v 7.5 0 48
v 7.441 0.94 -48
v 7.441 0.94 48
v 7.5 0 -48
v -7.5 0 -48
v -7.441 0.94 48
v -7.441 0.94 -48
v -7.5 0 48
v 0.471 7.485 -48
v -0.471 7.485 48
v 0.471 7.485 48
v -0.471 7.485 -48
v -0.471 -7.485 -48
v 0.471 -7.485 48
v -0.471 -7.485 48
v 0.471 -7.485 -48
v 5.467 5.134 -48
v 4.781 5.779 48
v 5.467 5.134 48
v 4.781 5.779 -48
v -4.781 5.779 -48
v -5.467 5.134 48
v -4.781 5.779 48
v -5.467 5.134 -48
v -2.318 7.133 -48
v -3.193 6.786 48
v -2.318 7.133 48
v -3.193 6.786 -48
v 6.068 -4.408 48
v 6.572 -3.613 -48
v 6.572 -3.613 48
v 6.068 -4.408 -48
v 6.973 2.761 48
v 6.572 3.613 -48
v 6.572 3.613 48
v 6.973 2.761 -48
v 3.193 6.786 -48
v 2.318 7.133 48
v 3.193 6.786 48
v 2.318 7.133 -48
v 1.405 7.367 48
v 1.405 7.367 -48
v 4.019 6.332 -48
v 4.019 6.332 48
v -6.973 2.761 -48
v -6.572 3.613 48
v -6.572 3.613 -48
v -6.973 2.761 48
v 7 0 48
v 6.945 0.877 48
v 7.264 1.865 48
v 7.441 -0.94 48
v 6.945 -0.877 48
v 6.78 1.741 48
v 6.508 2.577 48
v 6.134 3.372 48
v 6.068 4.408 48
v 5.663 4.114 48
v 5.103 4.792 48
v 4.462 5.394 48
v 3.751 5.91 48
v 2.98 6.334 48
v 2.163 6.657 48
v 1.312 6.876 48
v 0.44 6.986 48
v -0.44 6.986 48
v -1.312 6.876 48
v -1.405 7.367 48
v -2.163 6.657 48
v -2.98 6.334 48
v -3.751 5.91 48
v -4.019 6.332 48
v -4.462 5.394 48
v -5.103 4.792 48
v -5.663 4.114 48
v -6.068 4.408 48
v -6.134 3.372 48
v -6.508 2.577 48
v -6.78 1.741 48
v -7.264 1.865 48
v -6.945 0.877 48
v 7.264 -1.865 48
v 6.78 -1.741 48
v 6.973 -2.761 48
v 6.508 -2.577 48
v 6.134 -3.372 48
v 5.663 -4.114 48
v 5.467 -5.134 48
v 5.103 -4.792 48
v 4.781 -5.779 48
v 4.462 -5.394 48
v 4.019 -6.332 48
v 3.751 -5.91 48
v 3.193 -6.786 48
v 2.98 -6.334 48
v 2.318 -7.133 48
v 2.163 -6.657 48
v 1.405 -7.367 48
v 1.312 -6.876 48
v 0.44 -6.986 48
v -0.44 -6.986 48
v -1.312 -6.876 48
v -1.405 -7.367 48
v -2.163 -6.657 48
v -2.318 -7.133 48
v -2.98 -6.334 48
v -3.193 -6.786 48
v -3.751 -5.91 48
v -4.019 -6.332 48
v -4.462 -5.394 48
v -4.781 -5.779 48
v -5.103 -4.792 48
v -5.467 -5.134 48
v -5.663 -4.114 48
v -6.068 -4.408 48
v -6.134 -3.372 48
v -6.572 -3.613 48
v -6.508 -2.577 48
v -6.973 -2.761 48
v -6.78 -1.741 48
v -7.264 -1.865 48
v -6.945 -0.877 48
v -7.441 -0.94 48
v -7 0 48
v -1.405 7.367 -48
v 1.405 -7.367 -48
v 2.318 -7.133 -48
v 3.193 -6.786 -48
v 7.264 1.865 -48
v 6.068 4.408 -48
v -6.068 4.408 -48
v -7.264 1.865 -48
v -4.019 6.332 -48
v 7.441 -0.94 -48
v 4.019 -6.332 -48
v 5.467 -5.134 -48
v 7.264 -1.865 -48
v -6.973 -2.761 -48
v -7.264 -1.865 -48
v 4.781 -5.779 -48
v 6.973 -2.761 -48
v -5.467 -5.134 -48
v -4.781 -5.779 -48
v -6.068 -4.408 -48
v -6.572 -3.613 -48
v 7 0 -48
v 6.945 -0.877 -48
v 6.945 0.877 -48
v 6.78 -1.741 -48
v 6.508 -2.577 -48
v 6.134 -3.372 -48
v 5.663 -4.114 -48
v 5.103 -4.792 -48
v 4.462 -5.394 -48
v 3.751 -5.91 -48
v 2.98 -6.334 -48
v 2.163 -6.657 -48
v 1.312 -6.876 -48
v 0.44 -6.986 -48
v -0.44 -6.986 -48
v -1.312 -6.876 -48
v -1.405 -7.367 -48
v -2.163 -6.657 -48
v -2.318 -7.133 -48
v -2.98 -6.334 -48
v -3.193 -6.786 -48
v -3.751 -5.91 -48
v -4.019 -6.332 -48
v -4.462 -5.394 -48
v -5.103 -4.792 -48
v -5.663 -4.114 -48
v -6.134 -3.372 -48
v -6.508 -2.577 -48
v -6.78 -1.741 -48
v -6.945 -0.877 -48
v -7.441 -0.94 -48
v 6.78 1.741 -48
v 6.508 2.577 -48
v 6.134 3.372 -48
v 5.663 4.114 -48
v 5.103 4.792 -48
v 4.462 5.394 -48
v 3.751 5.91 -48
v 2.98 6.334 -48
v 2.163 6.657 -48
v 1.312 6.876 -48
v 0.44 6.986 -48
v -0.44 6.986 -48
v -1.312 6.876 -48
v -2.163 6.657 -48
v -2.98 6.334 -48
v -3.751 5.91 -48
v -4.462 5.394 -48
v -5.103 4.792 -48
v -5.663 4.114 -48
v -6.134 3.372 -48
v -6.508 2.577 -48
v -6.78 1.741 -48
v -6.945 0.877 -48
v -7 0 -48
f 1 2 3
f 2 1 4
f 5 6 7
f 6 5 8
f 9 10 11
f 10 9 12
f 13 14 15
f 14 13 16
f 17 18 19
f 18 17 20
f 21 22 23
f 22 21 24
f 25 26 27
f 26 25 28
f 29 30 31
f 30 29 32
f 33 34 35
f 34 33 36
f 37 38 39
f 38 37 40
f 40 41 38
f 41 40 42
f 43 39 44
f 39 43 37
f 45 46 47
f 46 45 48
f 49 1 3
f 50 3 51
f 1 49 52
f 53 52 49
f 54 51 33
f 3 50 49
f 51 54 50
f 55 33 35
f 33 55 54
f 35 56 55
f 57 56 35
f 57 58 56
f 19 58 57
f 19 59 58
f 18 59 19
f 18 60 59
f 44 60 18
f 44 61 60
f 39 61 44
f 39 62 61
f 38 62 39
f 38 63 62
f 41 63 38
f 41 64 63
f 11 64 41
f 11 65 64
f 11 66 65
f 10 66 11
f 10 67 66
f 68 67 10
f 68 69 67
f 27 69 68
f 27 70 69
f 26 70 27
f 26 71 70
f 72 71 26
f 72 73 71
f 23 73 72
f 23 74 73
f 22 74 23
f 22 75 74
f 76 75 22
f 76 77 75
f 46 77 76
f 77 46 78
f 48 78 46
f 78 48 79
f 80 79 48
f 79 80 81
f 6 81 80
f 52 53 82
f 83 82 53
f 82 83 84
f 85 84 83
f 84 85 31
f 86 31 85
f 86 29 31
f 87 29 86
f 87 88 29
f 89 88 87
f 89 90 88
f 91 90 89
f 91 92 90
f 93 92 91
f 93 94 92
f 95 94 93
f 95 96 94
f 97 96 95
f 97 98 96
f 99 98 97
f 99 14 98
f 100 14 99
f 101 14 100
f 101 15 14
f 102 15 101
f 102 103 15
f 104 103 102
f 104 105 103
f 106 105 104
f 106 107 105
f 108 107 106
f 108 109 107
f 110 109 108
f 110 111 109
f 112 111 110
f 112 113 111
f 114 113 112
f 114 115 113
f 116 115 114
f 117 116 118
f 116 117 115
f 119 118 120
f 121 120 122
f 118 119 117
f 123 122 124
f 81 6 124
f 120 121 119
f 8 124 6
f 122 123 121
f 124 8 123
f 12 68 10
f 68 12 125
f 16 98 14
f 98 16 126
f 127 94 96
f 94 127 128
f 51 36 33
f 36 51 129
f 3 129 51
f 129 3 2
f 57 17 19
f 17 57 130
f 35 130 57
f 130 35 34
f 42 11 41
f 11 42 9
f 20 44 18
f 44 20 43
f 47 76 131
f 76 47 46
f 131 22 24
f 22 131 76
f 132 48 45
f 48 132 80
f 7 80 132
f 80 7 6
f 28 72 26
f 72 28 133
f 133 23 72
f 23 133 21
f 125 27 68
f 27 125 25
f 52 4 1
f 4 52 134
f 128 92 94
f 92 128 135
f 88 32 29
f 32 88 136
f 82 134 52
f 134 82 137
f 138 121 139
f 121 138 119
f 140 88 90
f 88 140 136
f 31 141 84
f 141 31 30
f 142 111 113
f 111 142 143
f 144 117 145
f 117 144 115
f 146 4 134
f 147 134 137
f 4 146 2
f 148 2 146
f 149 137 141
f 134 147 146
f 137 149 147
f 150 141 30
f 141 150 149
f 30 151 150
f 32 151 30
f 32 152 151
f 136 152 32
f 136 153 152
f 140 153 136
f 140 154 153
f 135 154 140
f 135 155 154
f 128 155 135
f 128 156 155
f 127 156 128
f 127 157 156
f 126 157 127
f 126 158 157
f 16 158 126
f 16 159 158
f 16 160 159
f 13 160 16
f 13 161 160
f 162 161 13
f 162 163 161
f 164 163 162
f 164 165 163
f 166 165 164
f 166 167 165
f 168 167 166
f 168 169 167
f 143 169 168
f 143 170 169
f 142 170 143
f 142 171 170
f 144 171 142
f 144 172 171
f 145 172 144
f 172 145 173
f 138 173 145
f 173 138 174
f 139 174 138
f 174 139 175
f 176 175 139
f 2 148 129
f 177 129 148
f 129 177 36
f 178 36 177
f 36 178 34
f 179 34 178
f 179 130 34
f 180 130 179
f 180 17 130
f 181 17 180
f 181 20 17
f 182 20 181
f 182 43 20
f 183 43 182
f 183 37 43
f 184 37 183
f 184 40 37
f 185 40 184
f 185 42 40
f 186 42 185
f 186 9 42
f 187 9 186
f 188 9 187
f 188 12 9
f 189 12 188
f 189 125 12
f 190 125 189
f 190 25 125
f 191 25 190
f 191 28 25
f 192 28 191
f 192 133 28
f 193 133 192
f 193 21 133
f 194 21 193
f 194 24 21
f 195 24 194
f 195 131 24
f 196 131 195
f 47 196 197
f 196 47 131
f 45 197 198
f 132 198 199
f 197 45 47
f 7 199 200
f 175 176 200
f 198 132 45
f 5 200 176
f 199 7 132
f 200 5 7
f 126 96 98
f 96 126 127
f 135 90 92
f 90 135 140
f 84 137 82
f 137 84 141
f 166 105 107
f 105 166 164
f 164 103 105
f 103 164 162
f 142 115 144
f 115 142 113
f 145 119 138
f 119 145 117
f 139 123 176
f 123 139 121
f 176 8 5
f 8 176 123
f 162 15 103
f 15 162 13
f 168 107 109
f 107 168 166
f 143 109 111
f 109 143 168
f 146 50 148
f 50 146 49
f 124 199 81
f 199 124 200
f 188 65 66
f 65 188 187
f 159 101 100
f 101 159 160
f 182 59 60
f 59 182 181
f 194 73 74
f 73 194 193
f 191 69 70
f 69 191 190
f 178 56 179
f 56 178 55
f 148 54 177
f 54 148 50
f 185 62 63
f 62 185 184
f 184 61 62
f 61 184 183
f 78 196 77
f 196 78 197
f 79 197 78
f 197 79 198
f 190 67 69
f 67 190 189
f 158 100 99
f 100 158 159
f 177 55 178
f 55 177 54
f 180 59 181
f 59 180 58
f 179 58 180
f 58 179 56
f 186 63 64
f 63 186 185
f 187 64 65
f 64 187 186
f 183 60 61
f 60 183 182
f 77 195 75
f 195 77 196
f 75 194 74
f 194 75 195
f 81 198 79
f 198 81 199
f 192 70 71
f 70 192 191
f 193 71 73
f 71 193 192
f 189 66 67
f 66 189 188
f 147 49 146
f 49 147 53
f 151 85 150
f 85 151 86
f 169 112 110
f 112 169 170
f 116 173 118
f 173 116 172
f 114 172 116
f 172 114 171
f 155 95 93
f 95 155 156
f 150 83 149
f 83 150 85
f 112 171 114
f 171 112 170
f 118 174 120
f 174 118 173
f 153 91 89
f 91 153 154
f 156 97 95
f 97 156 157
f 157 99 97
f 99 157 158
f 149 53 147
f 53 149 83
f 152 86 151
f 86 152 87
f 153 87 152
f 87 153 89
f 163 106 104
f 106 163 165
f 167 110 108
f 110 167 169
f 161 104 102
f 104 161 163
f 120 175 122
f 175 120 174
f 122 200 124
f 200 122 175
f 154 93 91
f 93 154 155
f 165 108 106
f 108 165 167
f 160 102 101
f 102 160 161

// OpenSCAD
$fn = 50;


difference() {
	union() {
		translate(v = [0, 0, -48.0000000000]) {
			cylinder(h = 96, r = 7.5000000000);
		}
	}
	union() {
		translate(v = [0, 0, -100.0000000000]) {
			cylinder(h = 200, r = 7);
		}
	}
}
